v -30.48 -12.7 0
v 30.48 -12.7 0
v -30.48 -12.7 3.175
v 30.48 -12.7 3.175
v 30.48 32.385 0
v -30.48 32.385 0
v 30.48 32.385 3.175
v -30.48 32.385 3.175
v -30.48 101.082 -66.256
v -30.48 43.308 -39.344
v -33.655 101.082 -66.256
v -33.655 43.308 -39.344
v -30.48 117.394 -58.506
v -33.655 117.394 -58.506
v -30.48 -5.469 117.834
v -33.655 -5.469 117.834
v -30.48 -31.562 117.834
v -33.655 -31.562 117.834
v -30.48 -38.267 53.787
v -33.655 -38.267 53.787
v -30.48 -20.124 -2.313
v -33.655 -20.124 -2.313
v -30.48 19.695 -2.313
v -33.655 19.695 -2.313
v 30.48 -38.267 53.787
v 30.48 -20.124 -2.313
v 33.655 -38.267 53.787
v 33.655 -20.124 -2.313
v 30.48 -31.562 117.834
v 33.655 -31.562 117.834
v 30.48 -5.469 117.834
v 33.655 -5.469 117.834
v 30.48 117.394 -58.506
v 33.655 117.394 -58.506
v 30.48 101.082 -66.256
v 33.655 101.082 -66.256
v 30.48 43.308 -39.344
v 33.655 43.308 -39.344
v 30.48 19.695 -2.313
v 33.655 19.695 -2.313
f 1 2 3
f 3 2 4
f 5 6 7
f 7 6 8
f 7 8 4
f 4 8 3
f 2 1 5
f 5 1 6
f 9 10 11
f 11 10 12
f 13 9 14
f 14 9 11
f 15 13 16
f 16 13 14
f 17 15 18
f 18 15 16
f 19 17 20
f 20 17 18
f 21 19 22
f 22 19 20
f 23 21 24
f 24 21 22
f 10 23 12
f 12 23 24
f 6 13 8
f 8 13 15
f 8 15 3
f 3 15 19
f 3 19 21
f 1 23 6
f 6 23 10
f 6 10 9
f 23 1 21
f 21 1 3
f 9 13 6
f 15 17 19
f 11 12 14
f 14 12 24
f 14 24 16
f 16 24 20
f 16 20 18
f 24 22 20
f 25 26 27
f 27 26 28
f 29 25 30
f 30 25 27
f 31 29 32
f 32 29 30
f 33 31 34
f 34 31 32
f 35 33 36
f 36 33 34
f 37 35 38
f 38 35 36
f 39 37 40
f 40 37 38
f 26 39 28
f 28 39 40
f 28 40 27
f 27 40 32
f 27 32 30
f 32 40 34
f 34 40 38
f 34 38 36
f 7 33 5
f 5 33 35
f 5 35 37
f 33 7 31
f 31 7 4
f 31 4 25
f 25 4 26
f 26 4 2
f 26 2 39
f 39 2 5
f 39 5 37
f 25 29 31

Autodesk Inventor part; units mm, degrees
ref_plane "XZ Plane" through (0, 0, 0) normal (0, 1, 0) x (-1, 0, 0)
ref_plane "XY Plane" through (0, 0, 0) normal (0, 0, 1) x (1, 0, 0)
ref_plane "Work Plane1" through (30.48, 0, 0) normal (1, 0, 0) x (0, 1, 0)
sketch "Sketch1" plane through (30.48, 0, 0) normal (1, 0, 0) x (0, 1, 0)
  line L0 (-20.1241, -2.3129) -> (-38.2674, 53.7867)
  line L1 (-38.2674, 53.7867) -> (-31.5623, 117.8336)
  line L2 (-31.5623, 117.8336) -> (-5.4691, 117.8336)
  line L3 (-5.4691, 117.8336) -> (117.3937, -58.5065)
  line L4 (117.3937, -58.5065) -> (101.0815, -66.2557)
  line L5 (19.6952, -2.3129) -> (-20.1241, -2.3129)
  line L6 (101.0815, -66.2557) -> (43.3079, -39.3441)
  line L7 (43.3079, -39.3441) -> (19.6952, -2.3129)
  line L8 (-37.8354, 57.9131) -> (-33.5614, 98.738)
  point P0 (0, 0)
  point P1 (-12.6907, 108.8336)
  point P2 (0, 0)
  dimension "d1" = 9
  dimension "d2" = 39.8192
  dimension "d3" = 107.922
  dimension "d5" = 56.0996
  dimension "d6" = 84.023
  dimension "d7" = 64.0469
  dimension "d8" = 26.0932
  dimension "d9" = 55.134
  dimension "d10" = 176.3401
  dimension "d11" = 37.0312
  dimension "d12" = 26.9116
  dimension "d13" = 18.8716
  dimension "d14" = 111.1466
extrude "Extrusion1" add sketch "Sketch1" along normal blind 3.175
ref_plane "Work Plane2" through (-30.48, 0, 0) normal (1, 0, 0) x (0, 1, 0)
sketch "Sketch2" plane through (-30.48, 0, 0) normal (1, 0, 0) x (0, 1, 0)
  line L0 (-20.1241, -2.3129) -> (19.6952, -2.3129) projected
  line L1 (19.6952, -2.3129) -> (43.3079, -39.3441) projected
  line L2 (43.3079, -39.3441) -> (101.0815, -66.2557) projected
  line L3 (101.0815, -66.2557) -> (117.3937, -58.5065) projected
  line L4 (117.3937, -58.5065) -> (-5.4691, 117.8336) projected
  line L5 (-5.4691, 117.8336) -> (-31.5623, 117.8336) projected
  line L6 (-31.5623, 117.8336) -> (-38.2674, 53.7867) projected
  line L7 (-38.2674, 53.7867) -> (-20.1241, -2.3129) projected
  point P0 (0, 0)
extrude "Extrusion2" add sketch "Sketch2" against normal blind 3.175
sketch "Sketch3" plane through (0, 0, 0) normal (0, 0, 1) x (1, 0, 0)
  line L0 (-30.48, -12.7) -> (30.48, -12.7)
  line L1 (30.48, -12.7) -> (30.48, 32.385)
  line L2 (30.48, 32.385) -> (-30.48, 32.385)
  line L3 (-30.48, 32.385) -> (-30.48, -12.7)
  line L4 (-30.48, 117.3937) -> (-30.48, -5.4691) projected
  line L5 (30.48, 117.3937) -> (30.48, -5.4691) projected
  point P0 (0, 0)
  dimension "d20" = 12.7
  dimension "d21" = 32.385
extrude "Extrusion3" add sketch "Sketch3" along normal blind 3.175
properties part number "ShoulderBoundingBox"
